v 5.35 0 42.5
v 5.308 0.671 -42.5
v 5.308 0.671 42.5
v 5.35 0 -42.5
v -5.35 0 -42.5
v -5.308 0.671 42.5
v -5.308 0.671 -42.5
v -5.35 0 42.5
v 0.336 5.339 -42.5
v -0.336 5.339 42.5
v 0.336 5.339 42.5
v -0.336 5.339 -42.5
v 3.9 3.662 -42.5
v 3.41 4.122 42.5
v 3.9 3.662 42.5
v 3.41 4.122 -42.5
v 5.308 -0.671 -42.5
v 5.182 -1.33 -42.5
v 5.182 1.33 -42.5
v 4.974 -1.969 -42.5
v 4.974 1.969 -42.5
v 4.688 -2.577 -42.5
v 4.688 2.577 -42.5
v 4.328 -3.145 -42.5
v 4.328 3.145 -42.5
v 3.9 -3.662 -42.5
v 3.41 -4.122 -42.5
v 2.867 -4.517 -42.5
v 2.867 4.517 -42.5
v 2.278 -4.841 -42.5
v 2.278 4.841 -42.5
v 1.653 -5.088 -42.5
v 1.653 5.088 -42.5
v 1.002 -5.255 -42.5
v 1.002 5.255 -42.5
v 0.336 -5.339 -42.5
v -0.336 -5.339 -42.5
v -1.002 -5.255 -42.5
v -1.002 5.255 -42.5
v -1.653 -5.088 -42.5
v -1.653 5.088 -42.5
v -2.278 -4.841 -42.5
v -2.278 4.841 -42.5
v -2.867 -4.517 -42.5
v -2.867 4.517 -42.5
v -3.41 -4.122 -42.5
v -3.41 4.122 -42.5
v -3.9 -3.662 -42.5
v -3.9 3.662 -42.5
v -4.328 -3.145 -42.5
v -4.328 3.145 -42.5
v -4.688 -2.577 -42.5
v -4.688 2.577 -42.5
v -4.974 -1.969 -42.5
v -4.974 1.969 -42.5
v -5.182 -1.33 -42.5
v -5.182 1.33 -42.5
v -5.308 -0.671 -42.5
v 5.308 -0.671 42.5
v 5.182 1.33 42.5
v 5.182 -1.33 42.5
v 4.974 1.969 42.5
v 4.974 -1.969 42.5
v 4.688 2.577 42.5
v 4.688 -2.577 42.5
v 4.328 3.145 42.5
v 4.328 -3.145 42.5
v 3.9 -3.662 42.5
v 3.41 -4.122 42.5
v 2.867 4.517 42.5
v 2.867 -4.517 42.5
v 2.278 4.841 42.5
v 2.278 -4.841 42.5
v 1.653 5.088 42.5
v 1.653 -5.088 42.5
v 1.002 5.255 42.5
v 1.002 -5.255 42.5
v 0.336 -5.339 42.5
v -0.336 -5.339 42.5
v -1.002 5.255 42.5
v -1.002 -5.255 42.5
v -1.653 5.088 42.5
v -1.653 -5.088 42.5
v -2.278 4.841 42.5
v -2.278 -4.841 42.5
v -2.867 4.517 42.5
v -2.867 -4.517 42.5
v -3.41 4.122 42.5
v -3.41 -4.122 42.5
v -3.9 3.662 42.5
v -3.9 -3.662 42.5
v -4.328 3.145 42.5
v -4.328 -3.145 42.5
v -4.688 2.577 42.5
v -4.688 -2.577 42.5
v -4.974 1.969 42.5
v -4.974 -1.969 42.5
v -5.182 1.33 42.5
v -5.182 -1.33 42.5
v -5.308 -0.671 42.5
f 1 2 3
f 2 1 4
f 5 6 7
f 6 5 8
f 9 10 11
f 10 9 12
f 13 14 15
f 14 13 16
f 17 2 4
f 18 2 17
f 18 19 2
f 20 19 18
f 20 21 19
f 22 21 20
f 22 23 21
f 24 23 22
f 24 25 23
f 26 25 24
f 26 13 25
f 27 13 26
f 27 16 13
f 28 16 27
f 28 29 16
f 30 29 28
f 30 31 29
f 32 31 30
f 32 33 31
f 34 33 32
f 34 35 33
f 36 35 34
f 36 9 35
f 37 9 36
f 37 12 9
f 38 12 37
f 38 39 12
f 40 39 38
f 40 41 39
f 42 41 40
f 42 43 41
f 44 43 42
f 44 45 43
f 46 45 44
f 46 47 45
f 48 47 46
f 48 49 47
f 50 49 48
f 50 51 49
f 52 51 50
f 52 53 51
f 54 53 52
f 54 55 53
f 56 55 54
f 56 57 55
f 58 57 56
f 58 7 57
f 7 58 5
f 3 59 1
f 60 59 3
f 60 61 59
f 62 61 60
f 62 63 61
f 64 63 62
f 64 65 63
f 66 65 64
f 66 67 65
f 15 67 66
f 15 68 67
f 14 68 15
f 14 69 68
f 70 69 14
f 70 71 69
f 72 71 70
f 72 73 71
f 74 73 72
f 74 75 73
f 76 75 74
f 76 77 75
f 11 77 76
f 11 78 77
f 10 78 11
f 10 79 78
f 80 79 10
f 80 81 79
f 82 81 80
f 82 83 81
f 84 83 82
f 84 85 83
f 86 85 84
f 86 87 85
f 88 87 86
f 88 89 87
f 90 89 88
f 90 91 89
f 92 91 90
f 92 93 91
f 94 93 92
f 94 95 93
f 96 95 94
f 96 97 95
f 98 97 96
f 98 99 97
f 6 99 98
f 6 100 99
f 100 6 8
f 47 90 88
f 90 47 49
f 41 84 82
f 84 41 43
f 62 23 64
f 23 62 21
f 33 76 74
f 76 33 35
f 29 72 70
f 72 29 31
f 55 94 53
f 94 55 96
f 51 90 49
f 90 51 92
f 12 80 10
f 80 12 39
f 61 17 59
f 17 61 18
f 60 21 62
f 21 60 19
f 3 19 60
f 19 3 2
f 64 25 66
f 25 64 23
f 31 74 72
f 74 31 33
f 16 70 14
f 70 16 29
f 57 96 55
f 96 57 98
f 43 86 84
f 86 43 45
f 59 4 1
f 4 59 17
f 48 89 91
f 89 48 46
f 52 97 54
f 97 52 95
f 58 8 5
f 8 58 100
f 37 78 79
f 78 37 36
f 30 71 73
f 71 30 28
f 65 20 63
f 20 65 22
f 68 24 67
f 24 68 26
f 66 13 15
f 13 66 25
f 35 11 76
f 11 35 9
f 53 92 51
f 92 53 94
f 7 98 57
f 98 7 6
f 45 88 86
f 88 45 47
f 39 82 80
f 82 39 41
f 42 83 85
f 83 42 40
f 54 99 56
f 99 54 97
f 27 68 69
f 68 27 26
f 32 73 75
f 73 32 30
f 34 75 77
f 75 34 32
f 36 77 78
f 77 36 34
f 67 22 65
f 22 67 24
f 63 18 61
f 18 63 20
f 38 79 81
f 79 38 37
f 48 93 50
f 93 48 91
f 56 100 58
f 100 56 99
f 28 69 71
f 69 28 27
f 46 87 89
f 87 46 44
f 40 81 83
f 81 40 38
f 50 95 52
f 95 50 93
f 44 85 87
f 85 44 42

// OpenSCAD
$fn = 50;


difference() {
	union() {
		translate(v = [0, 0, -42.5000000000]) {
			cylinder(h = 85, r = 5.3500000000);
		}
	}
	union() {
		translate(v = [0, 0, -100.0000000000]) {
			cylinder(h = 200, r = 0);
		}
	}
}
